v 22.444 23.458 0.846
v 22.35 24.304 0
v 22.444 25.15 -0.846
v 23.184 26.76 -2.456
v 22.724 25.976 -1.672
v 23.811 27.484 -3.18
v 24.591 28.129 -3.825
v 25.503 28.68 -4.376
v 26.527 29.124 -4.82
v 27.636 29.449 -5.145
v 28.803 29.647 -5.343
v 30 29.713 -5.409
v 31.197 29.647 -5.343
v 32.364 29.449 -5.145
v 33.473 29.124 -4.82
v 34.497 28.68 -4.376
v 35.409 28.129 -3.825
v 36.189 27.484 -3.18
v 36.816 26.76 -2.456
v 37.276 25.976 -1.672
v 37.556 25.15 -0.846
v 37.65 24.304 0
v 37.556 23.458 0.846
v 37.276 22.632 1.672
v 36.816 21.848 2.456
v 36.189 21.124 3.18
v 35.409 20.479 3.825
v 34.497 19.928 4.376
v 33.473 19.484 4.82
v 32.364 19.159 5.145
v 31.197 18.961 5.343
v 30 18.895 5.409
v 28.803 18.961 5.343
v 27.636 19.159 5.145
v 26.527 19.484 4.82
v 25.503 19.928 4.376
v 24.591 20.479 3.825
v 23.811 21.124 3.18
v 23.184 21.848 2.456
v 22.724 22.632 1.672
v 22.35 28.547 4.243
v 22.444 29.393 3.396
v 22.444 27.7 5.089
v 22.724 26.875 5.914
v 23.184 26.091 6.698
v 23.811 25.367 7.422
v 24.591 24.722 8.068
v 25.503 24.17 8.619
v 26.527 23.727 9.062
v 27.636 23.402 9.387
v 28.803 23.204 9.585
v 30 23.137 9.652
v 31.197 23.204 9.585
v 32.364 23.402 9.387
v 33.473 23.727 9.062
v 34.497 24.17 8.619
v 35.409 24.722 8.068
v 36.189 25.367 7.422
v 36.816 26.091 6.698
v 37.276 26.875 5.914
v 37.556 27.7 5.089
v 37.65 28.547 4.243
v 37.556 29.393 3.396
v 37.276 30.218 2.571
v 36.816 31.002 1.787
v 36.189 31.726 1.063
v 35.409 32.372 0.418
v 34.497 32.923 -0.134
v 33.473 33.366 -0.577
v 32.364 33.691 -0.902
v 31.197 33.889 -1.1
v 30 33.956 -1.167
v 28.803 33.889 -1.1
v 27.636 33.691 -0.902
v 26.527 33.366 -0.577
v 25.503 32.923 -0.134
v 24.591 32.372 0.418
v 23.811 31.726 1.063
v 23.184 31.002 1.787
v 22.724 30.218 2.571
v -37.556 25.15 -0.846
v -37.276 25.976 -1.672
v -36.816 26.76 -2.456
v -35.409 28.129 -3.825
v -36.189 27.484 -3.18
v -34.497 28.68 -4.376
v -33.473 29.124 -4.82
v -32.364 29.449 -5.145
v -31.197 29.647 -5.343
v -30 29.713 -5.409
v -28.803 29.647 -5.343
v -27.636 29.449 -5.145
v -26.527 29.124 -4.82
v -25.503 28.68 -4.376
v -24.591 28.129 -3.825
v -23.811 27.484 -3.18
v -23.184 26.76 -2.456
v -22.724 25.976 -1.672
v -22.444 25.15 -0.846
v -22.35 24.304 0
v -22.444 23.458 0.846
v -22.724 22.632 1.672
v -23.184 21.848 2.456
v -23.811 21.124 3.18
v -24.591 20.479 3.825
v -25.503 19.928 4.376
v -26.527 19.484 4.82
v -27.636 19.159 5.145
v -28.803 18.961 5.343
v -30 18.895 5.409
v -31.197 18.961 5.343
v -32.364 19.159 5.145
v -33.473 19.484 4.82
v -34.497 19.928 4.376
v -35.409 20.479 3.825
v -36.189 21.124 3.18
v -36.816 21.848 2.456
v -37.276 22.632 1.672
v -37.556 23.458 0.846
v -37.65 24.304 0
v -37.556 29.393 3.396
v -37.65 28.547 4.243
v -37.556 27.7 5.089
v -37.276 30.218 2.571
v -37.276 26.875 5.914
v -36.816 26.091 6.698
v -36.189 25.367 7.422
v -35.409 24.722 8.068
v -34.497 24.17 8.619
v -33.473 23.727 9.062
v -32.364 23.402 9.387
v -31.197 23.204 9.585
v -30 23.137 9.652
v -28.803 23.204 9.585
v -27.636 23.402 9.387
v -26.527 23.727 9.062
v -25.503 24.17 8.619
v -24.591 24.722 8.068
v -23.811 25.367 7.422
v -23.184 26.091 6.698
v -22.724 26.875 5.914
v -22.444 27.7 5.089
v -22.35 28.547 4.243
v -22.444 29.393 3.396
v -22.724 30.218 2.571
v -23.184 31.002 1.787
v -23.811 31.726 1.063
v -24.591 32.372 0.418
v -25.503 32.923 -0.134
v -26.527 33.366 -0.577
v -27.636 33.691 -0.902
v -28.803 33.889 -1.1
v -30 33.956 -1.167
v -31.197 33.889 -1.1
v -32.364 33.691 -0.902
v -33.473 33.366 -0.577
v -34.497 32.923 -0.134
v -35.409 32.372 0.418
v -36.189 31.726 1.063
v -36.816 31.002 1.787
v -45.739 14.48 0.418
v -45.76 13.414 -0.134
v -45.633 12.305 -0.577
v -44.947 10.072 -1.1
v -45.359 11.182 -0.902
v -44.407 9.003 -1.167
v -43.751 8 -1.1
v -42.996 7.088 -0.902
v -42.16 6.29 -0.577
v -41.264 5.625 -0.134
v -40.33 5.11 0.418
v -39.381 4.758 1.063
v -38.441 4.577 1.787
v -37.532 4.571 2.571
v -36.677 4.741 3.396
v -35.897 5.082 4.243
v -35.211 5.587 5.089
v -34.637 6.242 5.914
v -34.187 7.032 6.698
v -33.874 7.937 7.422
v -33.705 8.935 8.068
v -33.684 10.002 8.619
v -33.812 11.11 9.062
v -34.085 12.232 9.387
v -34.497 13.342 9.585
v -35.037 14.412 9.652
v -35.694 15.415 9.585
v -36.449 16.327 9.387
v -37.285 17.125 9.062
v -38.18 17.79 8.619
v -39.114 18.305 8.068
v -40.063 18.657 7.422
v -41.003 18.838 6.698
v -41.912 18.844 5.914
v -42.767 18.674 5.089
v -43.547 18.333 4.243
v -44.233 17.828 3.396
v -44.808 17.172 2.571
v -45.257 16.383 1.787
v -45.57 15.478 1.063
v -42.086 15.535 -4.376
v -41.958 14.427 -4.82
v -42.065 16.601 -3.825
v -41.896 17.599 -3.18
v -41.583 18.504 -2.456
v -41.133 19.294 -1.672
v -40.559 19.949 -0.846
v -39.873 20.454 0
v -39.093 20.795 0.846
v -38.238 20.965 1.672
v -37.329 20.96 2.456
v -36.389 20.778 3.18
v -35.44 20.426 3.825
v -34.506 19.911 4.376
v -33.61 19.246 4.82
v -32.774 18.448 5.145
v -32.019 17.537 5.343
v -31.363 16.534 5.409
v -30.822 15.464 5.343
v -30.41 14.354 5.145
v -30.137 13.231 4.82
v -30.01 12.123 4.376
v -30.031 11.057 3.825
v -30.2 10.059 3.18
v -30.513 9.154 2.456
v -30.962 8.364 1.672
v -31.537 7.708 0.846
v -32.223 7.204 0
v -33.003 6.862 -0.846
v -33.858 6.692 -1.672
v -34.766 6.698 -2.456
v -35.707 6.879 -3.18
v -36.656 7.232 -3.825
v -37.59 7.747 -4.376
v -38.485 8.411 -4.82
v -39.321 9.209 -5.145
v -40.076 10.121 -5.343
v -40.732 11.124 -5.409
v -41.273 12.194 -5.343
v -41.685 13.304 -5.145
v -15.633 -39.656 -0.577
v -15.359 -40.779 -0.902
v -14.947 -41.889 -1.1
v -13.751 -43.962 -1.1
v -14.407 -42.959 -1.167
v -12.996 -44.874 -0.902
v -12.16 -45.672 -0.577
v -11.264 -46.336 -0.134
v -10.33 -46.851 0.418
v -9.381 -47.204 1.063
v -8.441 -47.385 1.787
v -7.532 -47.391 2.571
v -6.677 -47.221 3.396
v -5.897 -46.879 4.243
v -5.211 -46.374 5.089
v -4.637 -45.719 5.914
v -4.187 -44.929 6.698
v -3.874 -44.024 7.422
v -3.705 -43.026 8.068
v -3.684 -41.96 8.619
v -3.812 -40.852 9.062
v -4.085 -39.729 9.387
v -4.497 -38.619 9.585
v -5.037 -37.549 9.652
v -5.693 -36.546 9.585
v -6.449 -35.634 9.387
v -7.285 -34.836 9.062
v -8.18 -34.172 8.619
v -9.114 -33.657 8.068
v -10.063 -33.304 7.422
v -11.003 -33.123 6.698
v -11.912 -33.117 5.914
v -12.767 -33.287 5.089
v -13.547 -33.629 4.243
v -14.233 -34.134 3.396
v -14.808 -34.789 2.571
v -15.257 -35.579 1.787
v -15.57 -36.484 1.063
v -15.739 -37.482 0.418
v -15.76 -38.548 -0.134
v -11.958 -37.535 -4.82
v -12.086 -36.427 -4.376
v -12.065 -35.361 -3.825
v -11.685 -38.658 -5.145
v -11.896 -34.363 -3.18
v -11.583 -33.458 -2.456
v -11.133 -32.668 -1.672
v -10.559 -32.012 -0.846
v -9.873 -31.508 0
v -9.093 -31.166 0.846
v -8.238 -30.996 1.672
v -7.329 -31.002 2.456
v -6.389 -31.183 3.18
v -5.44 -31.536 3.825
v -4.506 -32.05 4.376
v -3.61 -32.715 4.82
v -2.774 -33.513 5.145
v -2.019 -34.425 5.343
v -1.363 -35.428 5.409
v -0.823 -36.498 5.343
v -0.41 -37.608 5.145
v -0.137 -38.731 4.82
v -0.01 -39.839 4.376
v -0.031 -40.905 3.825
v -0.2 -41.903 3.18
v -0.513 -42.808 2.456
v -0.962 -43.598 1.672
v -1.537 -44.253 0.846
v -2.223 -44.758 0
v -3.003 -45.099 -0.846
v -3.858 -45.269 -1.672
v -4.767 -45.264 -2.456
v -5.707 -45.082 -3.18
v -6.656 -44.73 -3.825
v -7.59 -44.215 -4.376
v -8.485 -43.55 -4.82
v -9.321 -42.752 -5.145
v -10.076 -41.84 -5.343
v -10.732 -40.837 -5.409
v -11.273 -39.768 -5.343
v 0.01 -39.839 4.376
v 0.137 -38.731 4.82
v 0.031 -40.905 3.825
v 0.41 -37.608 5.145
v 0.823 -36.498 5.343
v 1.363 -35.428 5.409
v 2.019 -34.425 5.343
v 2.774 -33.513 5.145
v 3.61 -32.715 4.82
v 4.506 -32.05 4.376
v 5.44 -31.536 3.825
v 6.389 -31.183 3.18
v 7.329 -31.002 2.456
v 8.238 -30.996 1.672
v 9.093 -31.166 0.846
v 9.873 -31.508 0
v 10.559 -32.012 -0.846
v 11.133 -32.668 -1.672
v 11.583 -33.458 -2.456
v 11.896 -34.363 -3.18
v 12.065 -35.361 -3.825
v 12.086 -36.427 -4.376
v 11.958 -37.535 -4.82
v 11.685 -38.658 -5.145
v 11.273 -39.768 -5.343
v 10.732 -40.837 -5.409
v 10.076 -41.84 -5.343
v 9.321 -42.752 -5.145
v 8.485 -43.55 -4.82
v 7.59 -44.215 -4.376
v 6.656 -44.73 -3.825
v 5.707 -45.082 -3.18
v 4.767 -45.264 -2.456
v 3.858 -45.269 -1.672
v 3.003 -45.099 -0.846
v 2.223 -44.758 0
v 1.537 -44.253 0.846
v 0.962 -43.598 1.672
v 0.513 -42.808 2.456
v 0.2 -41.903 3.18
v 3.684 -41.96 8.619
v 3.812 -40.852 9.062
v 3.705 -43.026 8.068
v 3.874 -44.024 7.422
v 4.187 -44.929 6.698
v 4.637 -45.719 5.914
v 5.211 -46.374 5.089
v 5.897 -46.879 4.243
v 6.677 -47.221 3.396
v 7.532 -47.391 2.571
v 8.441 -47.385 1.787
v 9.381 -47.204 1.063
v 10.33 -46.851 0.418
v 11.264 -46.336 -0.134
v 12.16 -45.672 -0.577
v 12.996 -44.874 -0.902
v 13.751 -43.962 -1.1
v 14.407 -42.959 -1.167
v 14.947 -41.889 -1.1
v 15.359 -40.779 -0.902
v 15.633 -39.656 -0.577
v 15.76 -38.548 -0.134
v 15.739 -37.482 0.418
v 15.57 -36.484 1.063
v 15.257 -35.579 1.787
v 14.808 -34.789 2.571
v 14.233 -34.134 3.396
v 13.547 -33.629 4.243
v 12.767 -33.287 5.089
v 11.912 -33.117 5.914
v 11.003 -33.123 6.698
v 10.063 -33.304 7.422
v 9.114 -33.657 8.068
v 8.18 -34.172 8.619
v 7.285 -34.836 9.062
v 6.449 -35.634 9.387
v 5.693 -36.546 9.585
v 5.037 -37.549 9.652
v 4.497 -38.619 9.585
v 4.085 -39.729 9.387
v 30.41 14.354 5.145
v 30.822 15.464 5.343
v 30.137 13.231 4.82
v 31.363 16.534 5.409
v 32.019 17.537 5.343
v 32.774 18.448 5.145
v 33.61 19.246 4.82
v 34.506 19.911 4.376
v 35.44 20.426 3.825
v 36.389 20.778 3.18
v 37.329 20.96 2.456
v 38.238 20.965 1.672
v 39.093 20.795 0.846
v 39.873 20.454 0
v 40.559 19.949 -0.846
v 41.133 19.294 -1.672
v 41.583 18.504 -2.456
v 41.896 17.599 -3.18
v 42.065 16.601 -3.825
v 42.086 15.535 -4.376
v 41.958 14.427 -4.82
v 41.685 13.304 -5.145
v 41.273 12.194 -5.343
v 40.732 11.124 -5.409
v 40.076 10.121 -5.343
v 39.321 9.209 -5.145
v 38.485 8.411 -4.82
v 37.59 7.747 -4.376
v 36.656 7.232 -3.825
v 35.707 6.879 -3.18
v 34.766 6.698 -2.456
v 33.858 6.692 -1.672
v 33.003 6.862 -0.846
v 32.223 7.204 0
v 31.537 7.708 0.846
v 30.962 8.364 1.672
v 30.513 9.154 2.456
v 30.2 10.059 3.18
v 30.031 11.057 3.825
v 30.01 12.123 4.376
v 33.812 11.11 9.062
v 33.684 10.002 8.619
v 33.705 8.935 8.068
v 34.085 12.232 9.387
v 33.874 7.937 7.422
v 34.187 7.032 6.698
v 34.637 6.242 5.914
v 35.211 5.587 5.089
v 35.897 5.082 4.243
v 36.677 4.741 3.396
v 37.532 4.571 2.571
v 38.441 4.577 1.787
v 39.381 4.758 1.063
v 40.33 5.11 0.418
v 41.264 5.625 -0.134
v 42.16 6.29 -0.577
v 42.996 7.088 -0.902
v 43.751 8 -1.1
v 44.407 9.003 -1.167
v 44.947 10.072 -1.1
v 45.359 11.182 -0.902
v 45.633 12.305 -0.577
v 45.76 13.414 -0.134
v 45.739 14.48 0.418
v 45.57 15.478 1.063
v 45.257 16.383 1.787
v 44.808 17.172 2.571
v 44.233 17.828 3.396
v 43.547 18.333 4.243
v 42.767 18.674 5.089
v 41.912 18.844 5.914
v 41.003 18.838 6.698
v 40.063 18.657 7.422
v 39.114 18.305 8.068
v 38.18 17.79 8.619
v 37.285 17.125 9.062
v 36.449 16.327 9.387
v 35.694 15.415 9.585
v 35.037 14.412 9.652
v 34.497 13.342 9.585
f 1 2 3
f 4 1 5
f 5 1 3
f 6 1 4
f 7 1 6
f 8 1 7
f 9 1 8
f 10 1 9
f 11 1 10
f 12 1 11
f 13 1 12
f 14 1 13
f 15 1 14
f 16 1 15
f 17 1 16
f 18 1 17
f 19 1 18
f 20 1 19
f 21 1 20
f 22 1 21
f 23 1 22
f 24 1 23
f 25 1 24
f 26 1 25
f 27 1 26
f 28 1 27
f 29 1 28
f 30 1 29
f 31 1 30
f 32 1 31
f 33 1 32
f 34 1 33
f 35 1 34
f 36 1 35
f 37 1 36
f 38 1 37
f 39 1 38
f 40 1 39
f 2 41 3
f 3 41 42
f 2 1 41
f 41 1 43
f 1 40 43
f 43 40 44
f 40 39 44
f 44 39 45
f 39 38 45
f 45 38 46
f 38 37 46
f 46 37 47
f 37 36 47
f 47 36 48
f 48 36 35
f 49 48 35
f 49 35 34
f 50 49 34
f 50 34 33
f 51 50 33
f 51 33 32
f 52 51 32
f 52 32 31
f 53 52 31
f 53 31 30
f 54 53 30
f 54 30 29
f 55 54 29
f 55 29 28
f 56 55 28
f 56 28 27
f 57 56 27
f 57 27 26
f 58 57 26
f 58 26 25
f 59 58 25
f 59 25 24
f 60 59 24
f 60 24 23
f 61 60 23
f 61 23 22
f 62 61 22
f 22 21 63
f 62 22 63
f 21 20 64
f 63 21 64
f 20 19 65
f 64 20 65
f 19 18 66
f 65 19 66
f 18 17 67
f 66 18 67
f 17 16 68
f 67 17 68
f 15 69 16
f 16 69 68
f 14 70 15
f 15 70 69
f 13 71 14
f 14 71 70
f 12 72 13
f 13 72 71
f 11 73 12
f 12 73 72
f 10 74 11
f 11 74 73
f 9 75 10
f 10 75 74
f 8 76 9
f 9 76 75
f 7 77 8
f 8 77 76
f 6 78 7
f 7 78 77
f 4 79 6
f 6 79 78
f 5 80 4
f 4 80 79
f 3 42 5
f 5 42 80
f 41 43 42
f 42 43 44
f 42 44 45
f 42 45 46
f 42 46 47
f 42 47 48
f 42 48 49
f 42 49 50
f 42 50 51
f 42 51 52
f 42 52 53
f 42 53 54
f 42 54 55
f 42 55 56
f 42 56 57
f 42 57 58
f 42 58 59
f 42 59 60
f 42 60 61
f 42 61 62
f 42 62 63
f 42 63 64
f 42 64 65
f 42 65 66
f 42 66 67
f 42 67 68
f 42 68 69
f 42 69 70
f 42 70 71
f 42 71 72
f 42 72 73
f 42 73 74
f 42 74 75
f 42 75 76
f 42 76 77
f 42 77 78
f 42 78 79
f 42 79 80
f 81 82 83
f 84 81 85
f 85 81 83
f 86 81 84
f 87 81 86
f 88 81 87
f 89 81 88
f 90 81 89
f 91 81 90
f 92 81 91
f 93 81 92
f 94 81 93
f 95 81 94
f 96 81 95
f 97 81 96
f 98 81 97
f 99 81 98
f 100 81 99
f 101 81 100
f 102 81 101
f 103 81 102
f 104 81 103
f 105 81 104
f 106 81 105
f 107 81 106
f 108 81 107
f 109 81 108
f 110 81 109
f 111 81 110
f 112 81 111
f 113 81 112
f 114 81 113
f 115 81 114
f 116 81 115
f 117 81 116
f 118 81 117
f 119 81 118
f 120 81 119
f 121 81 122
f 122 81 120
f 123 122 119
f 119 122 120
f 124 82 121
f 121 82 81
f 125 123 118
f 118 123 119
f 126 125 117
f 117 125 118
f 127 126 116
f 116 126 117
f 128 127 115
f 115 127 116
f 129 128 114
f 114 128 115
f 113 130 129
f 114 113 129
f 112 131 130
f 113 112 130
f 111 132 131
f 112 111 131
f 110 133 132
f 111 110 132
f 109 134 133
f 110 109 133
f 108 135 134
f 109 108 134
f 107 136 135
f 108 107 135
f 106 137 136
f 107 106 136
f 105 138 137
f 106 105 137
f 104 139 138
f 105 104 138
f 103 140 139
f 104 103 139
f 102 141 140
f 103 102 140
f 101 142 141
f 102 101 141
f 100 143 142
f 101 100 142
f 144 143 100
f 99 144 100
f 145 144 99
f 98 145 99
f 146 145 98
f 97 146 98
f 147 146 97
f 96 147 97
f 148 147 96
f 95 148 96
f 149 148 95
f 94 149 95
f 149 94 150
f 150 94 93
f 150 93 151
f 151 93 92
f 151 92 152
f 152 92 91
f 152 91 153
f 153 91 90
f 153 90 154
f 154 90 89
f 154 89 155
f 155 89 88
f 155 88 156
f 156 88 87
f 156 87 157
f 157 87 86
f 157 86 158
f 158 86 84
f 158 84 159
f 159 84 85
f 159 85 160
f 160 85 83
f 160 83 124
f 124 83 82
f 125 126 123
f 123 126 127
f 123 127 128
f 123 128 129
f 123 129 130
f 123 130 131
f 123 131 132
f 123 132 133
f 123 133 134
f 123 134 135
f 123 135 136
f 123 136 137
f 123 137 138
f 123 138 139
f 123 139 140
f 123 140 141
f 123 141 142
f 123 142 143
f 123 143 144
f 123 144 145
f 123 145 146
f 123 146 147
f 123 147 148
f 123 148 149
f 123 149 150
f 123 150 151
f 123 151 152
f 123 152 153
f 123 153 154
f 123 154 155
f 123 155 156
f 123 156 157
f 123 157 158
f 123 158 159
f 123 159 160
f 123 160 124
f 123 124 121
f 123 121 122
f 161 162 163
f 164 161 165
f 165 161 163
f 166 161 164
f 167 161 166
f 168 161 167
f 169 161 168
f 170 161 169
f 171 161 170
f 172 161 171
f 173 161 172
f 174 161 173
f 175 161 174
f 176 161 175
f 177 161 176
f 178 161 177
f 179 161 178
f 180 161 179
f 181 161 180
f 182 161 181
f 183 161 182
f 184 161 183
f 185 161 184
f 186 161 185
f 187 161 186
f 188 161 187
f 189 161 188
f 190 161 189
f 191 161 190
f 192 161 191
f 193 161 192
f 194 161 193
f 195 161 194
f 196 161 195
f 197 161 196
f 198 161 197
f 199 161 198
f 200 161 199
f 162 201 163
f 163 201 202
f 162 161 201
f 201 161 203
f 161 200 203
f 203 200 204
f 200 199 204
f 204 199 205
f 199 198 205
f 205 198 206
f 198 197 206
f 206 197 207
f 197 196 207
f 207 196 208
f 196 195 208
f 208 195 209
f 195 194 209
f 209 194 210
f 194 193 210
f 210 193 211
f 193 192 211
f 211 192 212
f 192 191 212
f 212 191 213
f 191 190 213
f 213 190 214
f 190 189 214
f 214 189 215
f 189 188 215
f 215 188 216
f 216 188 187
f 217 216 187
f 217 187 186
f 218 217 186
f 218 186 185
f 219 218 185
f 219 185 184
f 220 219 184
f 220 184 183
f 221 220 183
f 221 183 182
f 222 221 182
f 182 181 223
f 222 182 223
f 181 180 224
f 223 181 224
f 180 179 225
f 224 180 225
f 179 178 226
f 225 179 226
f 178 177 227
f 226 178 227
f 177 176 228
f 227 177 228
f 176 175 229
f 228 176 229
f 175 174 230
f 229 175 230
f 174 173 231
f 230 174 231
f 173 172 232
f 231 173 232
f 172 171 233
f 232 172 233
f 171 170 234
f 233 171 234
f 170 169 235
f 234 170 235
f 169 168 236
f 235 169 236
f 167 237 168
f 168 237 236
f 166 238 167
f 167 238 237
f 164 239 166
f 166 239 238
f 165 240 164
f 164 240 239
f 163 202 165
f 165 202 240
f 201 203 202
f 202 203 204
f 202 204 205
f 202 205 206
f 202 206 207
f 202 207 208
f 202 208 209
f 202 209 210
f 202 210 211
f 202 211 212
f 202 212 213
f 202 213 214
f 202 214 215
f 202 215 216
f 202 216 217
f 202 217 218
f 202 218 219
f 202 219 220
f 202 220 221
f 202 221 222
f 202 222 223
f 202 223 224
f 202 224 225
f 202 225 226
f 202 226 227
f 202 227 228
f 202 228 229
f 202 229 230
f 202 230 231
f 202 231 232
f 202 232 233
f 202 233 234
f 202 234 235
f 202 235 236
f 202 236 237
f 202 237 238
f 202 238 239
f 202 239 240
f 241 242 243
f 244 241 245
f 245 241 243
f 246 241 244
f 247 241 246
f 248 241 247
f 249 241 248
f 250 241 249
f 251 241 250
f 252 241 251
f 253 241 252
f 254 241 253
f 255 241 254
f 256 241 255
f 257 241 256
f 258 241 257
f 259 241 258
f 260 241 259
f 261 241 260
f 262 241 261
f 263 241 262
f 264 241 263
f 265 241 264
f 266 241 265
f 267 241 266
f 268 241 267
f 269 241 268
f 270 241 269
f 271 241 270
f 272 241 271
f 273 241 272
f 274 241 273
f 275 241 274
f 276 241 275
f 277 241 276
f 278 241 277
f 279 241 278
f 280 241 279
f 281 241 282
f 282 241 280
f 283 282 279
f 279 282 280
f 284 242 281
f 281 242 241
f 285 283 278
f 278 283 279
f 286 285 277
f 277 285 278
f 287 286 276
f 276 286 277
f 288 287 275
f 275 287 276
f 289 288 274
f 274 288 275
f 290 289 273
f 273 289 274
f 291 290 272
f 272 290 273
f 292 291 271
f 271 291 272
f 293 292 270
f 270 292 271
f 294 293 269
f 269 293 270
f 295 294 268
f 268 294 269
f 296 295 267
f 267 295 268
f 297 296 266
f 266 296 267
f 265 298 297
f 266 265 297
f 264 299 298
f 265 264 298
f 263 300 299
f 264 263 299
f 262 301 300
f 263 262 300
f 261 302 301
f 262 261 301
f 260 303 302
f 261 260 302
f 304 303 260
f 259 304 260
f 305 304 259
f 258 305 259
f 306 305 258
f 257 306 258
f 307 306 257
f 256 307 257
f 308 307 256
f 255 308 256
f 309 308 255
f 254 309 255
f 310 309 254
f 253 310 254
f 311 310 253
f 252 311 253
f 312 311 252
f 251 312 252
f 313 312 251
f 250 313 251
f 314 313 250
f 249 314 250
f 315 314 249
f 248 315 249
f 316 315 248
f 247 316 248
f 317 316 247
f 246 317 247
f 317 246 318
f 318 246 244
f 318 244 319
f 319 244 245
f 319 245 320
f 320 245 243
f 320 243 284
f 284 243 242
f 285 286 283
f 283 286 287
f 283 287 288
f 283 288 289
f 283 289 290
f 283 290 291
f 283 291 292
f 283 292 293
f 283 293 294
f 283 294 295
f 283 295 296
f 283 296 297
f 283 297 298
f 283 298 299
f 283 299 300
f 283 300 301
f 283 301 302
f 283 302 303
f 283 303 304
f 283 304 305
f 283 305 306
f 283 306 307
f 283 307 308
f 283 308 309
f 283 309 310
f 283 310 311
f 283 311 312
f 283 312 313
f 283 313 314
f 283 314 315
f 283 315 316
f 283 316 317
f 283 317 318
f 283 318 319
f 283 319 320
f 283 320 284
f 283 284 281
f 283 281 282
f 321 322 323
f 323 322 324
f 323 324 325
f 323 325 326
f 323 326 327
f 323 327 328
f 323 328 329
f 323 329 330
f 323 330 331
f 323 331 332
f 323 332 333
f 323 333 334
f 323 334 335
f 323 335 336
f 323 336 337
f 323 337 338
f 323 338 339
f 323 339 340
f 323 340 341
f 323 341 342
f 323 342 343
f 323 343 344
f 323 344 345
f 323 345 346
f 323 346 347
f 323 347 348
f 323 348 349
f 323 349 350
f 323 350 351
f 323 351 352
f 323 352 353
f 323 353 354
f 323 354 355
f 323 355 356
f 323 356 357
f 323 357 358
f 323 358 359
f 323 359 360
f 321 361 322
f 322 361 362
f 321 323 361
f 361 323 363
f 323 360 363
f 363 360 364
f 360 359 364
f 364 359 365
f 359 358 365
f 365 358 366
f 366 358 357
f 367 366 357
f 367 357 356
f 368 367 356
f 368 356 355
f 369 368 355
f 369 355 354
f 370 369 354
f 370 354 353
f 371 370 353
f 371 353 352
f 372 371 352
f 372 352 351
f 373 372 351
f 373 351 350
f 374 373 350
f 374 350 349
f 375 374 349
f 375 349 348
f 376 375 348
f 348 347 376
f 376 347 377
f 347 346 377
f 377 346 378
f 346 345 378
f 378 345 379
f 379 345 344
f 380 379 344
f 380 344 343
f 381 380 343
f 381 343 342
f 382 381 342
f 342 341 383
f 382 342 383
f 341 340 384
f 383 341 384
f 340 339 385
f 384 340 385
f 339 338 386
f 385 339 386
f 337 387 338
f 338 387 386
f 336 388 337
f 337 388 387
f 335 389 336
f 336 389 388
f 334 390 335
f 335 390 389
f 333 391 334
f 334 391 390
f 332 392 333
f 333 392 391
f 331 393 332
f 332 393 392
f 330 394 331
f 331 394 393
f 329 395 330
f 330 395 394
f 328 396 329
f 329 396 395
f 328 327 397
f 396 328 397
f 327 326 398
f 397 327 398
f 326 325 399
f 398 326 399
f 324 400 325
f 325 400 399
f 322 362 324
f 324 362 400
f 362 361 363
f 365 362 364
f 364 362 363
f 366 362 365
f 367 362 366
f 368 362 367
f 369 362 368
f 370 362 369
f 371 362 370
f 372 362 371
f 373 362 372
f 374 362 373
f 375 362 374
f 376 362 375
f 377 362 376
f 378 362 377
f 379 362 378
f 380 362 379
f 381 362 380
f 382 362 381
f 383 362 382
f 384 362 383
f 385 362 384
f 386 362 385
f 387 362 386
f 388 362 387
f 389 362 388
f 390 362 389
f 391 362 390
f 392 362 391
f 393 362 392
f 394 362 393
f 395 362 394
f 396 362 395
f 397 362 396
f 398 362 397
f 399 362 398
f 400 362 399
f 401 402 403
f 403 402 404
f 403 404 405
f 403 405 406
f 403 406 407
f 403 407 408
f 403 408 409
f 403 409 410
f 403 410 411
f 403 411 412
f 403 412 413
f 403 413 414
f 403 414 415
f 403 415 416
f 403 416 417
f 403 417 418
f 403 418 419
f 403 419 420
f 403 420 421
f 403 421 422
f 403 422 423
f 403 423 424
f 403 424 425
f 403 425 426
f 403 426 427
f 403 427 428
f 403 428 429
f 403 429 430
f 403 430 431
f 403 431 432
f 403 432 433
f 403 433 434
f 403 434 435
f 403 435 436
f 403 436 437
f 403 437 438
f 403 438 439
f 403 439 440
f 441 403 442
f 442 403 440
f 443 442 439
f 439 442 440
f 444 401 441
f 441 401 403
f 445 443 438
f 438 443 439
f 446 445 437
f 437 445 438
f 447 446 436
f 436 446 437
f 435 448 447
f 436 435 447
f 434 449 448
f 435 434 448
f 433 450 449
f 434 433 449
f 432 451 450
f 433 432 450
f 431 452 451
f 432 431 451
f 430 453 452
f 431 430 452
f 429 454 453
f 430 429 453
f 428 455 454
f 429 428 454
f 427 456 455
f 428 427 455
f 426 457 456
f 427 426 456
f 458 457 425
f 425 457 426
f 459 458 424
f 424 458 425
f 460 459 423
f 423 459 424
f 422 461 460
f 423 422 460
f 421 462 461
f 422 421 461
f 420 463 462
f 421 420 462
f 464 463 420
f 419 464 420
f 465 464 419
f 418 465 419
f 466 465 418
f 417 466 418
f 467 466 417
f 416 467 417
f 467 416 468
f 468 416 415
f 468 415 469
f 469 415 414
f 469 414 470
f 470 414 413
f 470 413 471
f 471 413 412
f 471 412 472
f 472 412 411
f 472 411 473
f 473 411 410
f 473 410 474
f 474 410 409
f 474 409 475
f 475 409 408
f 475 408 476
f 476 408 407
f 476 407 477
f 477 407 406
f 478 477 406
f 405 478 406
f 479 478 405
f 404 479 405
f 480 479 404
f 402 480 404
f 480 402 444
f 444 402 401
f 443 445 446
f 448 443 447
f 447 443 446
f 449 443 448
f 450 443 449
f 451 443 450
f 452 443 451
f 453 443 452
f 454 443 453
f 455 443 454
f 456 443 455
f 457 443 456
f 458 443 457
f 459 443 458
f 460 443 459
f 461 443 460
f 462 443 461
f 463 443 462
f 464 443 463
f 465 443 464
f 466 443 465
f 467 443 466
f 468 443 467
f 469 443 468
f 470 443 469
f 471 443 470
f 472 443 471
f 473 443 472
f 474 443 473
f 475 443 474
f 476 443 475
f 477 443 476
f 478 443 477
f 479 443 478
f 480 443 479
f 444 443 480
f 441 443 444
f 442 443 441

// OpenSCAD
play             = 0.3;
d_magnet         = 15 + play;       // outer diameter of magnet
r_magnet         = d_magnet / 2;
h_magnet         = 6;               // height of magnet
distance_magnets = 60;
a_magnet_mount   = -45;             // -90 <= a_magnet_mount <= 0

module magnet_holder_slice() {
    // tilted circle projects an ellipse
    a = r_magnet;                       // intersect point of ellipse with x-axis
    b = cos(a_magnet_mount) * r_magnet; // intersect point of ellipse with y-axis

    // polar angle of tangent
    phi = atan(pow(b, 2) / pow(a, 2) * tan(-60));
    
    // polar radius of tangent
    r = (a * b) / sqrt(pow(a, 2) * pow(sin(phi), 2) + pow(b, 2) * pow(cos(phi), 2));
    
    // coordinate of tangent, if tilt angle is 0
    x0 = cos(-60) * r_magnet;
    y0 = sin(-60) * r_magnet;

    // intersect point with y-axis, if tilt angle is 0
    n0 = y0 - tan(30) * x0;
 
    // equation of straight line: y = tan(30) * x + n0;    
    
    // use x-coordinate of tangent of ellipse for phi with
    // equation, subtract y-coordinate of tangent and
    // subtract the result from y0
    yn = y0 - ((tan(30) * cos(phi) * r + n0) - (sin(phi) * r));

    x = cos(30) * (tan(30) * (distance_magnets + r_magnet)) - x0;
    y = sin(30) * (tan(30) * (distance_magnets + r_magnet)) - yn;

    translate([0, y, 0])
    rotate([a_magnet_mount, 0, 0])
    union() {
        translate([x, 0, 0])
            cylinder(r=r_magnet, h=h_magnet, $fn=40);
    }
}

for (z = [0, 120, 240]) {
    rotate([0, 0, z])
    union() {
            magnet_holder_slice();
        
        mirror([1, 0 ,0])
            magnet_holder_slice();
    }
}
